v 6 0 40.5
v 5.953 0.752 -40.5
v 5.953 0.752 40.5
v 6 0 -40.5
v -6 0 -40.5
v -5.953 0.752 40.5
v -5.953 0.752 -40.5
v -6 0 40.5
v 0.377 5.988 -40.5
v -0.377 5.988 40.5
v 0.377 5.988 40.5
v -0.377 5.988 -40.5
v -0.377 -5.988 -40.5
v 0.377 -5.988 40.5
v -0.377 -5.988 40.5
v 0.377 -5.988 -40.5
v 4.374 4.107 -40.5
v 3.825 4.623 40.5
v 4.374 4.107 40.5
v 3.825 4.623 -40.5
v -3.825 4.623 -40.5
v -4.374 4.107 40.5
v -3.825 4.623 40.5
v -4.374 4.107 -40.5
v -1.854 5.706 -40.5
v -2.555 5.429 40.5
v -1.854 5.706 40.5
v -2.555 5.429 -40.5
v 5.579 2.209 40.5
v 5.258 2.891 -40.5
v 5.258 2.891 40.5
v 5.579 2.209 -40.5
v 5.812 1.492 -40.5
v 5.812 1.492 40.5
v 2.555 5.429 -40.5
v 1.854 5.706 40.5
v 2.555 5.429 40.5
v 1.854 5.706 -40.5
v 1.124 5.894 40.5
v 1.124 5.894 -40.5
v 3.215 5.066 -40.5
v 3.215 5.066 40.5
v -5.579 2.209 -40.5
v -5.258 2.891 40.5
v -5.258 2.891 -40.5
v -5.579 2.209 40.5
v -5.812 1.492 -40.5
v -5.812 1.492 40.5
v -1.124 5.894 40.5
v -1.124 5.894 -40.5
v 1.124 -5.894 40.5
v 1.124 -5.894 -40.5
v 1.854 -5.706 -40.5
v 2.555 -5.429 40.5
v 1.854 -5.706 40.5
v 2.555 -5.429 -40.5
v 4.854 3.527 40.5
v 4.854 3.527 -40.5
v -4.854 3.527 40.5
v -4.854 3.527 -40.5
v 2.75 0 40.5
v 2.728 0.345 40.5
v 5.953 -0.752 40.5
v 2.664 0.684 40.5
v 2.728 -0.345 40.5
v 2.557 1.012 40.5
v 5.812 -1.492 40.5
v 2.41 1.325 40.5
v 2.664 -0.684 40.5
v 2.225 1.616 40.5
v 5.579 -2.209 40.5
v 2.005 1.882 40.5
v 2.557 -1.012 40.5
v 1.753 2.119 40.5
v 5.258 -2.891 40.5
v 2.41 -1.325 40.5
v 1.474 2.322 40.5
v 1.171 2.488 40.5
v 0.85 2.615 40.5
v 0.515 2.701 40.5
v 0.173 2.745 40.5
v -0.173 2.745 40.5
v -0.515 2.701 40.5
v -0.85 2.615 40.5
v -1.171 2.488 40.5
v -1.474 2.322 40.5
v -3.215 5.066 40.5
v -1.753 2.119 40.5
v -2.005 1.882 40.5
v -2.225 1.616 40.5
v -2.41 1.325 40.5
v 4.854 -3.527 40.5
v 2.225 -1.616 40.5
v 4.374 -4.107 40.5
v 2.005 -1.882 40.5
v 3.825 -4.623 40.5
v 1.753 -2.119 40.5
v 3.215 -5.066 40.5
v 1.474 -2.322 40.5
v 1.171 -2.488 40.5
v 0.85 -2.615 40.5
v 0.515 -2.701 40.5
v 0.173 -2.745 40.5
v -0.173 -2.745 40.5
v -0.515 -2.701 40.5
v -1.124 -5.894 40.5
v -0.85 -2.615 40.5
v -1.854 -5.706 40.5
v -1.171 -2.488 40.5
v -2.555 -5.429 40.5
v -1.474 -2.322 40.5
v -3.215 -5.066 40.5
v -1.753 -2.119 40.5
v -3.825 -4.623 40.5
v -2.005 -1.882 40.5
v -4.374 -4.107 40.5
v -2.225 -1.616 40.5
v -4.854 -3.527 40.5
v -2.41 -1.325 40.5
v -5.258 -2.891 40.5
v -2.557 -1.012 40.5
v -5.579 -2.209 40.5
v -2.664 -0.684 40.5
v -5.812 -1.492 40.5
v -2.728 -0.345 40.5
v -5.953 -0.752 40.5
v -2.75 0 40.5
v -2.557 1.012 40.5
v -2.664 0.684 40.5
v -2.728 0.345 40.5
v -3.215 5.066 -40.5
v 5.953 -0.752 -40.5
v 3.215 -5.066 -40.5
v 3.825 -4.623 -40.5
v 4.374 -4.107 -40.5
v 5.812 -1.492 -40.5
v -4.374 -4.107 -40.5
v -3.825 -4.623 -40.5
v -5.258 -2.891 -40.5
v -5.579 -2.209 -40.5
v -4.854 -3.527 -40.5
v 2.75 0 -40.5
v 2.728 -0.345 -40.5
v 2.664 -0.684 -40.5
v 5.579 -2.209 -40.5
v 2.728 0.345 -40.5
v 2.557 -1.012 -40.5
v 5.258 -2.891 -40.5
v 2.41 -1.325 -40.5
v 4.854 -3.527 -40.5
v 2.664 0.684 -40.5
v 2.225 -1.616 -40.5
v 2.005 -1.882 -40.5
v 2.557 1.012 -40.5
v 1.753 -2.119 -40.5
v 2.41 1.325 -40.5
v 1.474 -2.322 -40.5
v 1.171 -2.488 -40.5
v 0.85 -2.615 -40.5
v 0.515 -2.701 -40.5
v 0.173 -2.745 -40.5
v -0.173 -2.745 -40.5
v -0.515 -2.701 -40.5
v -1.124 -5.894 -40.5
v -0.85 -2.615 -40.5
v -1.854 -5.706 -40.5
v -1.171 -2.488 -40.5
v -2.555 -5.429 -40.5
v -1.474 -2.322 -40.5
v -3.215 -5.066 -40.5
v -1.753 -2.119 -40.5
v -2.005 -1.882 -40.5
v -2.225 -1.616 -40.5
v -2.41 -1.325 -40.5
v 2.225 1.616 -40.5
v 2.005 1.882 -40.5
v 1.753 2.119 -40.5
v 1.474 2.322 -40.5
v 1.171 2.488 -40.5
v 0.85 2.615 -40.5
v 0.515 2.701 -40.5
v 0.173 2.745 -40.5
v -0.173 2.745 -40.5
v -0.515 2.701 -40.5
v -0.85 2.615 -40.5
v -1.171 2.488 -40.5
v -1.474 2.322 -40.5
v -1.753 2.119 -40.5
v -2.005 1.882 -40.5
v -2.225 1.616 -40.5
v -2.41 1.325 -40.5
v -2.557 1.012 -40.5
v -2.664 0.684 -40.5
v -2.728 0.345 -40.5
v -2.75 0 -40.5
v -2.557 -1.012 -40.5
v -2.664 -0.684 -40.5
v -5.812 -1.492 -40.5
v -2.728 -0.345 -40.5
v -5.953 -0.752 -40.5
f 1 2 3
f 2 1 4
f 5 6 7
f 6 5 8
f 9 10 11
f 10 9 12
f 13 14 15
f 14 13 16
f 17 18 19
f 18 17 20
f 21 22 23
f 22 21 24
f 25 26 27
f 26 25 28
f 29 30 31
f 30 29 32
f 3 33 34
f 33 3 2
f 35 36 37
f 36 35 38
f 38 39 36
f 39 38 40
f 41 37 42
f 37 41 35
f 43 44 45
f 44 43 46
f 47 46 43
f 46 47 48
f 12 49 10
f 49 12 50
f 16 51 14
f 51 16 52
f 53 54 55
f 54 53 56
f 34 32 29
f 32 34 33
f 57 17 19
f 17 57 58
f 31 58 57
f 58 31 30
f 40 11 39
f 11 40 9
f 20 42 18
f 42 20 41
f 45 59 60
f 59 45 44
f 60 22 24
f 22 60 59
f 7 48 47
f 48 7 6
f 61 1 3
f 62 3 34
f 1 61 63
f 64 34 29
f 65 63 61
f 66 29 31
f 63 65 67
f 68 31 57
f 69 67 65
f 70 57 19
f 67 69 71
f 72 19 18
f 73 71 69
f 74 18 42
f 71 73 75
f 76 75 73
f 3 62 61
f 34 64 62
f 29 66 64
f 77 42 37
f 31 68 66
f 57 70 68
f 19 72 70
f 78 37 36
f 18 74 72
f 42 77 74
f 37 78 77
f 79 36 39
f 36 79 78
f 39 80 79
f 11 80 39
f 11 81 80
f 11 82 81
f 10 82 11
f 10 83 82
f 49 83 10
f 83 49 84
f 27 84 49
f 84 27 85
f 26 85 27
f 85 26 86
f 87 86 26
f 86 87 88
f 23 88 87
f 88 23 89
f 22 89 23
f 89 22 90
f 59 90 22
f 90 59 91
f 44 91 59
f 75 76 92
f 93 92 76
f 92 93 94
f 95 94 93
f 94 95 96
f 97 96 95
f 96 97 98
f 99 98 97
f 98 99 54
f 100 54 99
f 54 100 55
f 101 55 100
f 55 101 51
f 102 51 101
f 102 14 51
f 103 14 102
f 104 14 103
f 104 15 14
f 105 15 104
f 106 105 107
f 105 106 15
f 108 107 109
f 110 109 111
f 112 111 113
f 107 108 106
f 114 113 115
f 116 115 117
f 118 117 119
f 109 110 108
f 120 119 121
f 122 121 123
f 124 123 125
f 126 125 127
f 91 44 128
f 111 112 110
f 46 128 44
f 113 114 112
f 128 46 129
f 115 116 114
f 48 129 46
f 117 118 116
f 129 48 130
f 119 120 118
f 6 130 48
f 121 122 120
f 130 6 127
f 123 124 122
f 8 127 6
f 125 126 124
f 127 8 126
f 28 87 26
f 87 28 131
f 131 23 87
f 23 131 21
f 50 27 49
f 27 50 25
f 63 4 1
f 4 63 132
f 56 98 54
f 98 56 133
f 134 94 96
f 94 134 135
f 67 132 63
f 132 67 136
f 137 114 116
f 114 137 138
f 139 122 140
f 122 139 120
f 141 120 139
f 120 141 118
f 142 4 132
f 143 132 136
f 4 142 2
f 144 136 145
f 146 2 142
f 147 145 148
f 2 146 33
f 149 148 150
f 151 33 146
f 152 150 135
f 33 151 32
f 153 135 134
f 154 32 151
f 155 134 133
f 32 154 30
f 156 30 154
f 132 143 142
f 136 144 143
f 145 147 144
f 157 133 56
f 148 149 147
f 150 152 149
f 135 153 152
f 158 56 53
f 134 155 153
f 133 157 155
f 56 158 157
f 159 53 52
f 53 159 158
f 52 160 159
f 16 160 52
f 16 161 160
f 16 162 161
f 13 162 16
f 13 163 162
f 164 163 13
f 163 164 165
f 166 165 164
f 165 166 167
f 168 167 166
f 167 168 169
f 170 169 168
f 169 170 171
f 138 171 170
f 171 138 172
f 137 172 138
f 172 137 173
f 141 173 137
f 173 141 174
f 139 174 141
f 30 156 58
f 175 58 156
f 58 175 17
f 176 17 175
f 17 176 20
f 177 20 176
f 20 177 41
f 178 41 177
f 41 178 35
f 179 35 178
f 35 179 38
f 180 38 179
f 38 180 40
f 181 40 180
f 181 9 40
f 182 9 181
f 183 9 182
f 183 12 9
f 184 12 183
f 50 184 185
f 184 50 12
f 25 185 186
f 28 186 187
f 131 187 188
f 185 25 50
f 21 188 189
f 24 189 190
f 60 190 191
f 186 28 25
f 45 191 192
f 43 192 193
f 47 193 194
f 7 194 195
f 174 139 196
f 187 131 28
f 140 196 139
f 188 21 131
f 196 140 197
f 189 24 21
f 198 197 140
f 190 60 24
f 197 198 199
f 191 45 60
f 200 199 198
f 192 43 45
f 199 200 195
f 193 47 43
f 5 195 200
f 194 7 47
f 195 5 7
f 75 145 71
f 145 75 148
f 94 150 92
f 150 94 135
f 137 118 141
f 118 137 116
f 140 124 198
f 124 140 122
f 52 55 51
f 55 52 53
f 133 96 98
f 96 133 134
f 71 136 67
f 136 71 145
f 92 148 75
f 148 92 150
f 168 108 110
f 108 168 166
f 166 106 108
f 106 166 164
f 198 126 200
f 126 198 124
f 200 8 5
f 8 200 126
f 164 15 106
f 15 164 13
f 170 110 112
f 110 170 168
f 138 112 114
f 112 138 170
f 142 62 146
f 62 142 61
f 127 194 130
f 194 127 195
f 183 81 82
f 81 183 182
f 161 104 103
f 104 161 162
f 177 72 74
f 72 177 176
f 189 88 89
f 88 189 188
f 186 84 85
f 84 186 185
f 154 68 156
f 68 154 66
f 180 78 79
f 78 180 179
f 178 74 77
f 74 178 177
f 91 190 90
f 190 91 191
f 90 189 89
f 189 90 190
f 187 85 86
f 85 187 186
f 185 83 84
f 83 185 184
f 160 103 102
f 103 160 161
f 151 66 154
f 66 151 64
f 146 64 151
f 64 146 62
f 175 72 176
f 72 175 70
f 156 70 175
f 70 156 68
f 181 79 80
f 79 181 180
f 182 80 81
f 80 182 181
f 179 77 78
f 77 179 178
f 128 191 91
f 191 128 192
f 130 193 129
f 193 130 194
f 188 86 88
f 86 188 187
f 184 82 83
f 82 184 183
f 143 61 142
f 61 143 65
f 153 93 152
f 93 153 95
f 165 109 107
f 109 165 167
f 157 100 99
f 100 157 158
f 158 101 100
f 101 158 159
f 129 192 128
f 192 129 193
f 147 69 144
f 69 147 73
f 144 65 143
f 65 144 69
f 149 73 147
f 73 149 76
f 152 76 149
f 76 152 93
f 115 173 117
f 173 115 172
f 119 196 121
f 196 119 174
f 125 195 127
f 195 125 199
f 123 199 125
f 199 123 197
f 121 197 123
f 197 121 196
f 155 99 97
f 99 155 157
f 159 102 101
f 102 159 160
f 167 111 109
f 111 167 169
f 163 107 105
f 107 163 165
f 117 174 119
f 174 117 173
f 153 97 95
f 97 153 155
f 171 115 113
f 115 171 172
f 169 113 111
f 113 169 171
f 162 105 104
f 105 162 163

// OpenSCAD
$fn = 50;


difference() {
	union() {
		translate(v = [0, 0, -40.5000000000]) {
			cylinder(h = 81, r = 6.0000000000);
		}
	}
	union() {
		translate(v = [0, 0, -100.0000000000]) {
			cylinder(h = 200, r = 2.7500000000);
		}
	}
}
